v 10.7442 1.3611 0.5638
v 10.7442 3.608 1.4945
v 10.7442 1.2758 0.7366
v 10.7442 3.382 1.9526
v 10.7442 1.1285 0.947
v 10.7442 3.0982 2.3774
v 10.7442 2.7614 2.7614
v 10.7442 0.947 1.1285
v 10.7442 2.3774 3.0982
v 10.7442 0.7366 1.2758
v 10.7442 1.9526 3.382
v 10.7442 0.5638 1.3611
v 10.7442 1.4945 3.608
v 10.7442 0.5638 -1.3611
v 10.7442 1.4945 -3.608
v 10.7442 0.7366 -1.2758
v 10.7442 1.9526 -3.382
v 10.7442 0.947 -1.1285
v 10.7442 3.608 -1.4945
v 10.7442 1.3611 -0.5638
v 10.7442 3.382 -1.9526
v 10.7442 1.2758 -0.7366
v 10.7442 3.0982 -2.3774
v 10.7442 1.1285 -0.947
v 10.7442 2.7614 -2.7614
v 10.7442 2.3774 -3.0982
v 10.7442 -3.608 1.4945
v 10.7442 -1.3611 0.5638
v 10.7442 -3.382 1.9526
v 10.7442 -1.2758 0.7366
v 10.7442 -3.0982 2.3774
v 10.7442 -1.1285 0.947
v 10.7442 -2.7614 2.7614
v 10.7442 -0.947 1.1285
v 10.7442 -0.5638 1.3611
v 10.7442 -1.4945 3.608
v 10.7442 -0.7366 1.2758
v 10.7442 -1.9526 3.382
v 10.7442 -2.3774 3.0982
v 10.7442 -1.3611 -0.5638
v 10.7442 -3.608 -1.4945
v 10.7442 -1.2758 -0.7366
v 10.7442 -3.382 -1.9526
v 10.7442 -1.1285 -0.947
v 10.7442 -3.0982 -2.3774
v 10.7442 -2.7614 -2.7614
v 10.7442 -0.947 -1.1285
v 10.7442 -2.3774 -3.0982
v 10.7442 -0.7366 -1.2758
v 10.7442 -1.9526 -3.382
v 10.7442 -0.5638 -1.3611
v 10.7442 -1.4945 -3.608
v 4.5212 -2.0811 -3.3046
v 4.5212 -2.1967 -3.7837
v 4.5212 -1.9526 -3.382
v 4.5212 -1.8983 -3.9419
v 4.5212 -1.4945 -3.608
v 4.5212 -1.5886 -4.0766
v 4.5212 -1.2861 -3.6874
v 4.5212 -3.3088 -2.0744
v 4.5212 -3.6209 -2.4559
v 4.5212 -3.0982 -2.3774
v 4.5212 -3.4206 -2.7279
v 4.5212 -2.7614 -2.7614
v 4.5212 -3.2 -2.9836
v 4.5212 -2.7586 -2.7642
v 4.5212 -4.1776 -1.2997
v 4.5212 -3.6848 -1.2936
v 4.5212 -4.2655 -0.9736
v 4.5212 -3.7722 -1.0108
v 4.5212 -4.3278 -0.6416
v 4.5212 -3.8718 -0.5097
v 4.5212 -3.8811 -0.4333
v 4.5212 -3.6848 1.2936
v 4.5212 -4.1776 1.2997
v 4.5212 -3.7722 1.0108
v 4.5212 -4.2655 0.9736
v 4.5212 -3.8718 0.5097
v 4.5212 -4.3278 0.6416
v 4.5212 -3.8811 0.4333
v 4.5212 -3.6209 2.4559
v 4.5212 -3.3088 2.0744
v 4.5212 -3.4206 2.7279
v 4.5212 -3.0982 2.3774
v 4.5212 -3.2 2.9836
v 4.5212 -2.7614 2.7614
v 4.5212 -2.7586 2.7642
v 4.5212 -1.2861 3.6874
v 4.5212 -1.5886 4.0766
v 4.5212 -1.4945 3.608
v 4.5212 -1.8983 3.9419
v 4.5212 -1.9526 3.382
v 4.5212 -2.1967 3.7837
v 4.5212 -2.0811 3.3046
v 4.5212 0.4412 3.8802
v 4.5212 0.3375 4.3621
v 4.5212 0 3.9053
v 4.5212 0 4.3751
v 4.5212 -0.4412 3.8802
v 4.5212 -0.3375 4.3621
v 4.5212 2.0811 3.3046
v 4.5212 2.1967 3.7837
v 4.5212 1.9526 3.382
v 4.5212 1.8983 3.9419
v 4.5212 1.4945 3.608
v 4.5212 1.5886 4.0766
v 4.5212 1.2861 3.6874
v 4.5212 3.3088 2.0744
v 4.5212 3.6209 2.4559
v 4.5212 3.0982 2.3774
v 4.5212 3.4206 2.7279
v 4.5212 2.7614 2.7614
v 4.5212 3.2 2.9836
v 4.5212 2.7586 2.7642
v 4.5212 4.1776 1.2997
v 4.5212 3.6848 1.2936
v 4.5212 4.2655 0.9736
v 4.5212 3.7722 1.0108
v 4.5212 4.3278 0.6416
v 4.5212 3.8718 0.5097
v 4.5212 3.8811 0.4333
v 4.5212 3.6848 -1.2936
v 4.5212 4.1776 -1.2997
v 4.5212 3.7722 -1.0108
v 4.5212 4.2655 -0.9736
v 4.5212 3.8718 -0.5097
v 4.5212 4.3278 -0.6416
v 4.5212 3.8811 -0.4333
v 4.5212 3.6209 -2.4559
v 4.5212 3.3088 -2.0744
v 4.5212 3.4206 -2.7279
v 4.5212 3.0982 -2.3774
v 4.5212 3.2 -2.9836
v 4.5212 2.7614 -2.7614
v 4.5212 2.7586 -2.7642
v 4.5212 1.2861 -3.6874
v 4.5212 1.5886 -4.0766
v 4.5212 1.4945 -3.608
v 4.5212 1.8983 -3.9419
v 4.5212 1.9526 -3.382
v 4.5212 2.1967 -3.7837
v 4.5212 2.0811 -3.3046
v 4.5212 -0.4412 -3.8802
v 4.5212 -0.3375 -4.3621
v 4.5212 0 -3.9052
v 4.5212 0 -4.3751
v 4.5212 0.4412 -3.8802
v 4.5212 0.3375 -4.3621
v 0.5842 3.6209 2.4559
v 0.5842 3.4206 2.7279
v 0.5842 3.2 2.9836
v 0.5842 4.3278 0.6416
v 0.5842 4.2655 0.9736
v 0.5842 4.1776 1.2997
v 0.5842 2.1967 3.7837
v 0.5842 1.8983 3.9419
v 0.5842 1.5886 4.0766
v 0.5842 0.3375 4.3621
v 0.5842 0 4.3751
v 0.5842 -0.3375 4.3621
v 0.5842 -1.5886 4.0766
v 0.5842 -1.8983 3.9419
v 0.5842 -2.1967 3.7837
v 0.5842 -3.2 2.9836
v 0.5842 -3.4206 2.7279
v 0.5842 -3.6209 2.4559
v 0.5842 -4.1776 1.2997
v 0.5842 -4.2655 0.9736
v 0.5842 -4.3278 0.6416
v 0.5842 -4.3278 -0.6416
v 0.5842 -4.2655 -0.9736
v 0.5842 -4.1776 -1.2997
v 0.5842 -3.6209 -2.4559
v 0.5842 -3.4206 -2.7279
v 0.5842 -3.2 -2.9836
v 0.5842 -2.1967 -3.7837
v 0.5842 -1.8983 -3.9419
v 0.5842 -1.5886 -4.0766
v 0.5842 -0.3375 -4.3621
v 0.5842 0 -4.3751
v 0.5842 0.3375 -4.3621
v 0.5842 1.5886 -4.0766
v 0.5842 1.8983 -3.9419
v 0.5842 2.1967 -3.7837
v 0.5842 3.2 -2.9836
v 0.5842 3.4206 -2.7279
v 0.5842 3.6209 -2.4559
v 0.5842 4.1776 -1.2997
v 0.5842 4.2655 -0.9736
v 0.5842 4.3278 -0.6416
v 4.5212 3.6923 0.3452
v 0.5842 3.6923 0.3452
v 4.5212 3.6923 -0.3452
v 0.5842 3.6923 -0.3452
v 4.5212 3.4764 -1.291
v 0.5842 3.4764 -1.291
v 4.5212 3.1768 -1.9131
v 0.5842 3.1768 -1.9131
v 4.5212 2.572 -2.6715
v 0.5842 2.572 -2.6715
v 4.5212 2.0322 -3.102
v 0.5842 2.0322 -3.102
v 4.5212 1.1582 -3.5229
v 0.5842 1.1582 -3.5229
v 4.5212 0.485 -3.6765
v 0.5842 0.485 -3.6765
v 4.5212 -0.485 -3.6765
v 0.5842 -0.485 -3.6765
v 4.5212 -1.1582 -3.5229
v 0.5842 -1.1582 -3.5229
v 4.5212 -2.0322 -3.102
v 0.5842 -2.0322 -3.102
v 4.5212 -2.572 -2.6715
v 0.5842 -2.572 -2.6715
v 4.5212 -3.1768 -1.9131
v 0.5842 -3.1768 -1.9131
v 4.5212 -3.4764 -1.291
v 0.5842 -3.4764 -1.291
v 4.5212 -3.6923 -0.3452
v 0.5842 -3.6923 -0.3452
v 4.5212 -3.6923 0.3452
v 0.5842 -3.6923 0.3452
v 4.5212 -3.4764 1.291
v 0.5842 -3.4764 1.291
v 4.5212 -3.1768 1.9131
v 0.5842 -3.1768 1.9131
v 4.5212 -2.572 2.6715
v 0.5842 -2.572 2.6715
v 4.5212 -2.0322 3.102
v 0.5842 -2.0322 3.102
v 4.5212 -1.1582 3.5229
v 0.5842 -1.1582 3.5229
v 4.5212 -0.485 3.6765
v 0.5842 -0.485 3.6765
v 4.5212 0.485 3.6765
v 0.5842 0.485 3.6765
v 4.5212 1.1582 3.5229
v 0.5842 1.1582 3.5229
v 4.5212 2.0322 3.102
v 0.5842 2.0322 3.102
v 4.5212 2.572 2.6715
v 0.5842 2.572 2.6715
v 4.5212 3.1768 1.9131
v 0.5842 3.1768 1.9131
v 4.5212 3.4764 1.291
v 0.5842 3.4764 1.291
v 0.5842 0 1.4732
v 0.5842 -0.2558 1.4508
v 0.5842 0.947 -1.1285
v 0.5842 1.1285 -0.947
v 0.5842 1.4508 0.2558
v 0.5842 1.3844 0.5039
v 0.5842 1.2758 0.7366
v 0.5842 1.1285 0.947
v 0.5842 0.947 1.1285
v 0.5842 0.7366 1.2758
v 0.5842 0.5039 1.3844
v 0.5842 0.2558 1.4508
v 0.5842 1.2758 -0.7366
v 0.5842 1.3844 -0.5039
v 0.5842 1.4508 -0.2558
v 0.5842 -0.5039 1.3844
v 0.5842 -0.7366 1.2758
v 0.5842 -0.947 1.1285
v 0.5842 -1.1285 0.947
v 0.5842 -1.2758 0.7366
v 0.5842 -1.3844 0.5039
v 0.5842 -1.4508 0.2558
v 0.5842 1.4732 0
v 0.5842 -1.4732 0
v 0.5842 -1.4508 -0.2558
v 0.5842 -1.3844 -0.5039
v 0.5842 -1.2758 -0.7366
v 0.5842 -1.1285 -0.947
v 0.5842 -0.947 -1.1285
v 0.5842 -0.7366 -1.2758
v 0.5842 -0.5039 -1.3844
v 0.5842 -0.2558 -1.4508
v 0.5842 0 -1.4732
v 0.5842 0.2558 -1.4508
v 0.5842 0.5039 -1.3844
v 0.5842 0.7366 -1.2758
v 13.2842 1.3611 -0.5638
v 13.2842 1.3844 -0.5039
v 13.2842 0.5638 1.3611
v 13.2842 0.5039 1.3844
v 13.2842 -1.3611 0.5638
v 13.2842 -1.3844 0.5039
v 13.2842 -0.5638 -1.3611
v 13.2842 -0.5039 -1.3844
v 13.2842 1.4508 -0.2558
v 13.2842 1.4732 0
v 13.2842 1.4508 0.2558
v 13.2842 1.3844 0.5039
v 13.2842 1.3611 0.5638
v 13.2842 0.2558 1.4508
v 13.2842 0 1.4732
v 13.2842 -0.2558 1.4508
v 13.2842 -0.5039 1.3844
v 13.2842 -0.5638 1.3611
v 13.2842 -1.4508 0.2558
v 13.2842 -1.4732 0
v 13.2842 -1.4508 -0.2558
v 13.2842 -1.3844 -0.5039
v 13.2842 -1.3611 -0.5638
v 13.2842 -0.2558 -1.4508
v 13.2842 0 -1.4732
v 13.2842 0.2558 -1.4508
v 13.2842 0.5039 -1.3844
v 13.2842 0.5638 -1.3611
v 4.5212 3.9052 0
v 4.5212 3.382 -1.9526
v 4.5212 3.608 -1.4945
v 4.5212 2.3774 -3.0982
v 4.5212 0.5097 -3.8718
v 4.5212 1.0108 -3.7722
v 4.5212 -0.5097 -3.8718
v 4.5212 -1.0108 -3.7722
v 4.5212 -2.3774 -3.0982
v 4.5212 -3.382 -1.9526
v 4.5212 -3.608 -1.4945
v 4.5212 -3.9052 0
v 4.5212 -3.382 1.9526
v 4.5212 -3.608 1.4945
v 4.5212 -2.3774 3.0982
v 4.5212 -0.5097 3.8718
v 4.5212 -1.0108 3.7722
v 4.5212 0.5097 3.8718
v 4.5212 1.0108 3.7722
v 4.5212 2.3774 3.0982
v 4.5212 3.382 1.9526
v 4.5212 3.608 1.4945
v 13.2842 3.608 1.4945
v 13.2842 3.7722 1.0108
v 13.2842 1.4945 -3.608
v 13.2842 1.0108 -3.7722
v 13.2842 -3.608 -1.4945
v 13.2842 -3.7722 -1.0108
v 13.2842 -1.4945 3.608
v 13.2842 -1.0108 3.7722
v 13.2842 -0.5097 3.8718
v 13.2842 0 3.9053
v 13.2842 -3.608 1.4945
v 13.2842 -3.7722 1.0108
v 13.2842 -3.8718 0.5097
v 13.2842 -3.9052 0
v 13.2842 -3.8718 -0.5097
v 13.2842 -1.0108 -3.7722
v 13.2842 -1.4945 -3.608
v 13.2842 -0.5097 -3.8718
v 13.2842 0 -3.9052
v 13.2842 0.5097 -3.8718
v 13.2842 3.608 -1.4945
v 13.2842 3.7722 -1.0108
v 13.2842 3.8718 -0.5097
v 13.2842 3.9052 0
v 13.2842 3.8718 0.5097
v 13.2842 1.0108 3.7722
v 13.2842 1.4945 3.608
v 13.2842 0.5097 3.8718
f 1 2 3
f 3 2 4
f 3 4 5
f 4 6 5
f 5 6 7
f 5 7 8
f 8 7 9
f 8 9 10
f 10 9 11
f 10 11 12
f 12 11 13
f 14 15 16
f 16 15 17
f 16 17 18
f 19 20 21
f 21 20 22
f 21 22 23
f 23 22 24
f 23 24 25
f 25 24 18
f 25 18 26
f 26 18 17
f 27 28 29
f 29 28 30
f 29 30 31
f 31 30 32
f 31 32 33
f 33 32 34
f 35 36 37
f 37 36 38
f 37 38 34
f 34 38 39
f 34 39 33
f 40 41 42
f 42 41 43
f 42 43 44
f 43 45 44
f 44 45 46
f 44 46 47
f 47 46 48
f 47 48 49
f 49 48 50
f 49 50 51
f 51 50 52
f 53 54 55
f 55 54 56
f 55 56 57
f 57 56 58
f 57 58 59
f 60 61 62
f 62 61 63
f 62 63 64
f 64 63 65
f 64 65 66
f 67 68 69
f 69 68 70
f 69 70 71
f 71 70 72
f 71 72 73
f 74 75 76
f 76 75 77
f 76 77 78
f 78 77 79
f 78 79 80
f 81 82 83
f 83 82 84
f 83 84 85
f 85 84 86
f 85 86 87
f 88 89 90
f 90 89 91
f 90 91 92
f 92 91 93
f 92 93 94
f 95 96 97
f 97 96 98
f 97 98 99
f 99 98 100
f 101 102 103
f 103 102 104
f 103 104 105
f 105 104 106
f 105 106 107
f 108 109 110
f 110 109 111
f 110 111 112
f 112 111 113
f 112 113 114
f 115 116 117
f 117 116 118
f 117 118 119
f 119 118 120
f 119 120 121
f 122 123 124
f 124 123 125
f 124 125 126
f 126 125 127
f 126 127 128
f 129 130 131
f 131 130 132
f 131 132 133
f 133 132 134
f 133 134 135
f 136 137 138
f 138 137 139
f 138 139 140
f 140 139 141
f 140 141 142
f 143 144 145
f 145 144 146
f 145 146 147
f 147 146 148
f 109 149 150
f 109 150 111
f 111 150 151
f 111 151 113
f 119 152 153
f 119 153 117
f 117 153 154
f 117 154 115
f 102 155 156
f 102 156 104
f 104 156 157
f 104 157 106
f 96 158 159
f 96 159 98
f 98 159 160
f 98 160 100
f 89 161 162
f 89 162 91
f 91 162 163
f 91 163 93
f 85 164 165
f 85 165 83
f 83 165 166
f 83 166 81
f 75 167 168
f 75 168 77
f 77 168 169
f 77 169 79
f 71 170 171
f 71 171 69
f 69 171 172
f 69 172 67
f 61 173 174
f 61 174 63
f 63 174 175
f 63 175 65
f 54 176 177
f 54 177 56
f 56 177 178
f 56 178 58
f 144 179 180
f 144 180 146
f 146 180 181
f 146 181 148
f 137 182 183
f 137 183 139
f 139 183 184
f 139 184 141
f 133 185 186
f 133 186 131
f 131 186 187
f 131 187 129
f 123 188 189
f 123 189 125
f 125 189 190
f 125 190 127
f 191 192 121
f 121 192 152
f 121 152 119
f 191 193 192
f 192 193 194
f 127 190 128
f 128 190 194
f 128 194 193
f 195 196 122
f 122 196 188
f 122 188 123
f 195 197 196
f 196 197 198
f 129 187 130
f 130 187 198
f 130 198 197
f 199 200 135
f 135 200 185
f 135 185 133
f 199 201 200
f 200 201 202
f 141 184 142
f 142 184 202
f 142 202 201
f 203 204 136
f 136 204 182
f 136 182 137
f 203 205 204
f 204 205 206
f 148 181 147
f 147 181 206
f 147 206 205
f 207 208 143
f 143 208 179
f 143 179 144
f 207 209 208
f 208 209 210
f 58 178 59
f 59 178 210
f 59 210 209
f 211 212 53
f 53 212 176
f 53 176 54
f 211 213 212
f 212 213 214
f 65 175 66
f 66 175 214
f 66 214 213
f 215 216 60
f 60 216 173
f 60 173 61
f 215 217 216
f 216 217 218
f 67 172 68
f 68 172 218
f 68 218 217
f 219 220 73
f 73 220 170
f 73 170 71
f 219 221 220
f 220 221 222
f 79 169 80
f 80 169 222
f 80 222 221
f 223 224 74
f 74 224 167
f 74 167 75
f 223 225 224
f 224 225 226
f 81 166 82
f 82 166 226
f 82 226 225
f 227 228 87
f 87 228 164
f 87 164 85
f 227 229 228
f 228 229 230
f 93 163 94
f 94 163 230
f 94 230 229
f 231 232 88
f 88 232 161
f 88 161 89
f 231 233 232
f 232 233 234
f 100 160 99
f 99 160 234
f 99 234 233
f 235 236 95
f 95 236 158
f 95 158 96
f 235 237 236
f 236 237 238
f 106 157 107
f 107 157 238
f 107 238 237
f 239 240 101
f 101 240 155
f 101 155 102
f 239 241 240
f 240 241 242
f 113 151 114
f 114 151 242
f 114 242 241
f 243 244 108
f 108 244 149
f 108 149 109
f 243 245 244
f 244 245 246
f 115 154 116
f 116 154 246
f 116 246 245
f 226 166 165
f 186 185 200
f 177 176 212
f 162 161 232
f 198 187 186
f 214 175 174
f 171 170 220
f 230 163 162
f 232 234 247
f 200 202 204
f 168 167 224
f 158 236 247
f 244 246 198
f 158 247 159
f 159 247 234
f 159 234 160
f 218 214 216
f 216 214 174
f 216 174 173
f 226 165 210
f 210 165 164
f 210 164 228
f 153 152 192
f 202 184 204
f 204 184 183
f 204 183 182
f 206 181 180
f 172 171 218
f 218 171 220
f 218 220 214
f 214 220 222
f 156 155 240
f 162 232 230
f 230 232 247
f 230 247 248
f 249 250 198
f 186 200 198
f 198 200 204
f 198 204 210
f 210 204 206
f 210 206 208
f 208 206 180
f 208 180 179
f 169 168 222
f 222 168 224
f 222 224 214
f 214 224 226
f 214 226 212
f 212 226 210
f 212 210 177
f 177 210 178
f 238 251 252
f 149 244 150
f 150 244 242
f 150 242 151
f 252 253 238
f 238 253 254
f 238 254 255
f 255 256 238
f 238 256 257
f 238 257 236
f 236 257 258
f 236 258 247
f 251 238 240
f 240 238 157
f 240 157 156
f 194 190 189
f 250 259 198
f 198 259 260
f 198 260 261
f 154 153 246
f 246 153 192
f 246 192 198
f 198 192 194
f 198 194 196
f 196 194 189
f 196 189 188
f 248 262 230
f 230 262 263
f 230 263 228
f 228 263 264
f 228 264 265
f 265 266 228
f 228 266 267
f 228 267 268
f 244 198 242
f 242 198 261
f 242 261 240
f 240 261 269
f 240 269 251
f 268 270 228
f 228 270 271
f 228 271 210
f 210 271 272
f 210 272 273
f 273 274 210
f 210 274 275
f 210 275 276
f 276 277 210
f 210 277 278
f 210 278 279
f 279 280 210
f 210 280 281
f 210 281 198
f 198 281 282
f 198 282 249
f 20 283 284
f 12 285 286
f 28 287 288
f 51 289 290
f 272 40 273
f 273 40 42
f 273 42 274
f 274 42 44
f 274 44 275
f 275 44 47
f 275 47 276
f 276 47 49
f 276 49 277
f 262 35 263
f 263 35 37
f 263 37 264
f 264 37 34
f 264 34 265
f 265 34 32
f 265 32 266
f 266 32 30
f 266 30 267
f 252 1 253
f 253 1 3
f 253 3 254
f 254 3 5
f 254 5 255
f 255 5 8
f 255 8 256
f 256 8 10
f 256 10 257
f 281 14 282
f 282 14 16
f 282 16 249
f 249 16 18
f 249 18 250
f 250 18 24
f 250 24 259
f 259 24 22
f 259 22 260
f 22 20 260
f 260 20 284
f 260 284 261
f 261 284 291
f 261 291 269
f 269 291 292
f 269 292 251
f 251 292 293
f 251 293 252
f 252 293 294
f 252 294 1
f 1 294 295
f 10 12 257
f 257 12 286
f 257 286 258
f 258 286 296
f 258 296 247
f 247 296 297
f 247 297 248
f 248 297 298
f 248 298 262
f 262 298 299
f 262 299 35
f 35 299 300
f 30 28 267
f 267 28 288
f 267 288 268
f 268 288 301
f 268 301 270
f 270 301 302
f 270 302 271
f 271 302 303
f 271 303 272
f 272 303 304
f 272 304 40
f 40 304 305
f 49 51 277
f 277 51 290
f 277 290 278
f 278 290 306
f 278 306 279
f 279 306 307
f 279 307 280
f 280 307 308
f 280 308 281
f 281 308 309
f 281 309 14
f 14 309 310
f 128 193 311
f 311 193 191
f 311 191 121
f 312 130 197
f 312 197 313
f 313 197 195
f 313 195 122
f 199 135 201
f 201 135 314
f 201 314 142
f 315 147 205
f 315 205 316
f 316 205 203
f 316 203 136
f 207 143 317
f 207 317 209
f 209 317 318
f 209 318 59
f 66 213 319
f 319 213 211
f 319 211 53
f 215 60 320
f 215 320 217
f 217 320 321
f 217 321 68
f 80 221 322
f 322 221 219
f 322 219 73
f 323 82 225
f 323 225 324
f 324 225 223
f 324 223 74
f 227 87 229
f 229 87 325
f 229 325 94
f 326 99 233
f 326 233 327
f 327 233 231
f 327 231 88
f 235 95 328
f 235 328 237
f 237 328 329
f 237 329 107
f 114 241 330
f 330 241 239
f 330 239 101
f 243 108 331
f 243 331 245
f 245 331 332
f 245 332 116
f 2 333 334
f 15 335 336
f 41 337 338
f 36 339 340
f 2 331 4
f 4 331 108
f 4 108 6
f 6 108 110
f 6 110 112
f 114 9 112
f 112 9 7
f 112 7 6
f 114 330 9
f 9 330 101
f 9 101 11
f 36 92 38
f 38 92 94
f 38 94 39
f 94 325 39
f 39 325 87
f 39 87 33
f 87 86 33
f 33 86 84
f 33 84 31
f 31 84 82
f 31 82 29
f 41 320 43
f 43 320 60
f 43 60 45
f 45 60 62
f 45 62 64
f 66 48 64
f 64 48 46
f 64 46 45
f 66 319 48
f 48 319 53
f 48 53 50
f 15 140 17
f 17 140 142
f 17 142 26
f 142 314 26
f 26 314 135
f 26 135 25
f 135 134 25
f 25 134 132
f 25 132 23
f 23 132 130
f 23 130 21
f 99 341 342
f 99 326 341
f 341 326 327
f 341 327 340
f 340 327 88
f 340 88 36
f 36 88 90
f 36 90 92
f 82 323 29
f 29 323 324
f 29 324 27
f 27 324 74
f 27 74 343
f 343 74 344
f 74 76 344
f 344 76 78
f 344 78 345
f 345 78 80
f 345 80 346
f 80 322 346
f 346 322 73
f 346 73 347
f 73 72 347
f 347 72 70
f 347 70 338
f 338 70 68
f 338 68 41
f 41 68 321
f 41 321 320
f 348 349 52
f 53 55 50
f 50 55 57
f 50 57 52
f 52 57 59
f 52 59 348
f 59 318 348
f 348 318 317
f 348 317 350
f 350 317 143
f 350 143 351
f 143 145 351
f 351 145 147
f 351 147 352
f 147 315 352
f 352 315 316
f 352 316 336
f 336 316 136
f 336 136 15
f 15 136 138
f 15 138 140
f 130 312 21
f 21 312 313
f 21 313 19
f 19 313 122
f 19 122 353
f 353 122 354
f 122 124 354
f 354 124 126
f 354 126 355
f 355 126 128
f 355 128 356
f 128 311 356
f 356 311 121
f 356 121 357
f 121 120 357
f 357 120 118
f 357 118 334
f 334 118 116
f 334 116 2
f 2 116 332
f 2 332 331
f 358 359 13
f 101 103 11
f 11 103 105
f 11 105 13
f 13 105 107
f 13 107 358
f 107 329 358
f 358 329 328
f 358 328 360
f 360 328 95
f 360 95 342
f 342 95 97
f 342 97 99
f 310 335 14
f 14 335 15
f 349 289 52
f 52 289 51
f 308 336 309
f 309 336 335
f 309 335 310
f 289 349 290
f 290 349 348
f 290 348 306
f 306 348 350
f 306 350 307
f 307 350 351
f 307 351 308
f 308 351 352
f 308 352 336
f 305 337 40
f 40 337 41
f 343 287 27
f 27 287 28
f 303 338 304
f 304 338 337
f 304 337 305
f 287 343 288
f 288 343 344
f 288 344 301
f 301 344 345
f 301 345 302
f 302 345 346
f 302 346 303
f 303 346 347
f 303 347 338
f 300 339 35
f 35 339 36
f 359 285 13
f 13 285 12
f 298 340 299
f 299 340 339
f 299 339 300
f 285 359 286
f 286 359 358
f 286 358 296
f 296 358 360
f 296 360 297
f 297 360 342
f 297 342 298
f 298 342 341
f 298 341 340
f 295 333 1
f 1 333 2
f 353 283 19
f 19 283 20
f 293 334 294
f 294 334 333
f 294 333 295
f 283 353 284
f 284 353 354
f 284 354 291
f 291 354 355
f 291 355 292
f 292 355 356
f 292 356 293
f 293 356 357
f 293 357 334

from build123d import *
from build123d.topology import SkipClean

# Parameters (mm, degrees)
SKETCH4_R           = 4.5339
SKETCH4_R_2         = 4.37515
CUT_EXTRUDE2_DEPTH  = 4.064
CUT_EXTRUDE1_DEPTH  = 4.064
CIRPATTERN1_COUNT   = 14
SKETCH6_R           = 1.5875
CUT_EXTRUDE3_DEPTH  = 12.02520933
CUT_EXTRUDE4_DEPTH  = 1.016
SKETCH9_R           = 6.985
CUT_EXTRUDE5_DEPTH  = 1.0414
SKETCH10_R          = 6.985
CUT_EXTRUDE6_DEPTH  = 6.1468
SKETCH12_R          = 1.5875
SKETCH12_R_2        = 1.4732
BOSS_EXTRUDE1_DEPTH = 3.937
BOSS_EXTRUDE2_START = 6.223
SKETCH13_R          = 3.90525
SKETCH13_R_2        = 1.4732
BOSS_EXTRUDE2_DEPTH = 6.223
BOSS_EXTRUDE3_START = 2.54
BOSS_EXTRUDE3_DEPTH = 2.54
CIRPATTERN4_COUNT   = 4


with BuildPart() as part:
    # Sketch1 → Revolve1 (revolve)
    with BuildSketch(Plane.XY, mode=Mode.PRIVATE) as revolve1_sk:
        with BuildLine():
            Line((-5.5626, 1.5875), (5.5626, 1.5875))
            Line((5.5626, 1.5875), (5.5626, 6.731))
            Line((5.5626, 6.731), (5.0419, 6.731))
            ThreePointArc((5.0419, 6.731), (4.654552953, 5.958878742), (4.5212, 5.1054))
            Line((4.5212, 5.1054), (4.5212, 4.5339))
            Line((4.5212, 4.5339), (0.4572, 4.5339))
            Line((0.4572, 4.5339), (0.4572, 5.6769))
            Line((0.4572, 5.6769), (-0.5969, 6.731))
            Line((-0.5969, 6.731), (-5.5626, 6.731))
            Line((-5.5626, 6.731), (-5.5626, 1.5875))
        make_face()
    revolve(revolve1_sk.sketch.rotate(Axis((-5.5626, 0, 0), (1, 0, 0)), 90), axis=Axis((-5.5626, 0, 0), (1, 0, 0)))

    # Sketch4 → Cut-Extrude2 (cut)
    with BuildSketch(Plane(origin=(0.4572, 0, 0), x_dir=(0, 0, -1), z_dir=(1, 0, 0))):
        Circle(SKETCH4_R)
        Circle(SKETCH4_R_2, mode=Mode.SUBTRACT)
    extrude(amount=CUT_EXTRUDE2_DEPTH, mode=Mode.SUBTRACT)

    # Sketch3 → Cut-Extrude1 (cut)
    with BuildSketch(Plane(origin=(0.4572, 0, 0), x_dir=(0, 0, -1), z_dir=(1, 0, 0))):
        with BuildLine():
            Line((-0.641613493, 4.327848154), (-0.345249615, 3.692293767))
            Line((-0.345249615, 3.692293767), (0.345249615, 3.692293767))
            Line((0.345249615, 3.692293767), (0.641613493, 4.327848154))
            ThreePointArc((0.641613493, 4.327848154), (0, 4.37515), (-0.641613493, 4.327848154))
        make_face()
    cut_extrude1 = extrude(amount=CUT_EXTRUDE1_DEPTH, mode=Mode.SUBTRACT)

    # CirPattern1: Cut-Extrude1 ×14 about axis
    cirpattern1_axis = Axis((0, 0, 0), (1, 0, 0))
    for i in range(1, CIRPATTERN1_COUNT):
        add(cut_extrude1.rotate(cirpattern1_axis, i * 360 / CIRPATTERN1_COUNT), mode=Mode.SUBTRACT)

    # Sketch6 → Cut-Extrude3 (cut, through all)
    with BuildSketch(Plane(origin=(0, 0, 0), x_dir=(1, 0, 0), z_dir=(0, 1, 0))):
        with Locations(Location((-2.5527, 0, 0), (0, 0, 90))):
            Circle(SKETCH6_R)
    extrude(amount=CUT_EXTRUDE3_DEPTH, mode=Mode.SUBTRACT)

    # Sketch9 → Cut-Extrude5 (cut)
    with BuildSketch(Plane(origin=(5.5626, 0, 0), x_dir=(0, 0, -1), z_dir=(1, 0, 0))):
        Circle(SKETCH9_R)
    extrude(amount=-CUT_EXTRUDE5_DEPTH, mode=Mode.SUBTRACT)


with BuildPart() as body_2:
    # Sketch7 → Revolve2 (revolve)
    with BuildSketch(Plane.XY, mode=Mode.PRIVATE) as revolve2_sk:
        Polygon((-3.7211, 6.731), (-2.5527, 6.731), (-2.5527, 1.9685), (-3.7211, 1.9685), (-3.9751, 2.2225), (-3.9751, 6.477), align=None)
    revolve(revolve2_sk.sketch.rotate(Axis((-2.5527, 1.9685, 0), (0, 1, 0)), 270), axis=Axis((-2.5527, 1.9685, 0), (0, 1, 0)))

    # Sketch8 → Cut-Extrude4 (cut)
    with BuildSketch(Plane(origin=(0, 6.731, 0), x_dir=(1, 0, 0), z_dir=(0, 1, 0))):
        Polygon((-2.5527, 0.821223023), (-3.2639, 0.410611511), (-3.2639, -0.410611511), (-2.5527, -0.821223023), (-1.8415, -0.410611511), (-1.8415, 0.410611511), align=None)
    extrude(amount=-CUT_EXTRUDE4_DEPTH, mode=Mode.SUBTRACT)


with BuildPart() as cut_extrude6_tool:
    # Sketch10 → Cut-Extrude6 (new body)
    with BuildSketch(Plane.ZY.offset(5.5626)):
        Circle(SKETCH10_R)
    extrude(amount=-CUT_EXTRUDE6_DEPTH)


with BuildPart() as part_1:
    add(part.part)

    # Cut-Extrude6: cut by cut_extrude6_tool
    add(cut_extrude6_tool.part, mode=Mode.SUBTRACT)

    # Sketch12 → Boss-Extrude1 (add)
    with BuildSketch(Plane(origin=(4.5212, 0, 0), x_dir=(0, 0, -1), z_dir=(1, 0, 0))):
        Circle(SKETCH12_R)
        Circle(SKETCH12_R_2, mode=Mode.SUBTRACT)
    extrude(amount=-BOSS_EXTRUDE1_DEPTH)

    # Sketch13 → Boss-Extrude2 (add)
    with BuildSketch(Plane(origin=(4.5212, 0, 0), x_dir=(0, 0, -1), z_dir=(1, 0, 0)).offset(BOSS_EXTRUDE2_START)):
        with Locations(Location((0, 0, 0), (0, 0, 186.486751227))):
            Circle(SKETCH13_R)
        Circle(SKETCH13_R_2, mode=Mode.SUBTRACT)
    extrude(amount=-BOSS_EXTRUDE2_DEPTH)

    # Sketch14 → Boss-Extrude3 (add)
    with SkipClean():  # the faces are left unmerged after this step: merging them gives an invalid solid
        with BuildSketch(Plane(origin=(10.7442, 0, 0), x_dir=(0, 0, -1), z_dir=(1, 0, 0)).offset(BOSS_EXTRUDE3_START)):
            with BuildLine():
                Line((1.361059327, -0.563769233), (3.607980544, -1.494474474))
                ThreePointArc((3.607980544, -1.494474474), (3.90525, 0), (3.607980544, 1.494474474))
                Line((3.607980544, 1.494474474), (1.361059327, 0.563769233))
                ThreePointArc((1.361059327, 0.563769233), (1.4732, 0), (1.361059327, -0.563769233))
            make_face()
        boss_extrude3 = extrude(amount=-BOSS_EXTRUDE3_DEPTH)

    # CirPattern4: Boss-Extrude3 ×4 about axis
    with SkipClean():  # the faces are left unmerged after this step: merging them gives an invalid solid
        cirpattern4_axis = Axis((-3.905928061, 0, 0), (1, 0, 0))
        for i in range(1, CIRPATTERN4_COUNT):
            add(boss_extrude3.rotate(cirpattern4_axis, i * 360 / CIRPATTERN4_COUNT))


with BuildPart() as body_2_1:
    add(body_2.part)

    # Cut-Extrude6: cut by cut_extrude6_tool
    add(cut_extrude6_tool.part, mode=Mode.SUBTRACT)


solid = part_1.part
